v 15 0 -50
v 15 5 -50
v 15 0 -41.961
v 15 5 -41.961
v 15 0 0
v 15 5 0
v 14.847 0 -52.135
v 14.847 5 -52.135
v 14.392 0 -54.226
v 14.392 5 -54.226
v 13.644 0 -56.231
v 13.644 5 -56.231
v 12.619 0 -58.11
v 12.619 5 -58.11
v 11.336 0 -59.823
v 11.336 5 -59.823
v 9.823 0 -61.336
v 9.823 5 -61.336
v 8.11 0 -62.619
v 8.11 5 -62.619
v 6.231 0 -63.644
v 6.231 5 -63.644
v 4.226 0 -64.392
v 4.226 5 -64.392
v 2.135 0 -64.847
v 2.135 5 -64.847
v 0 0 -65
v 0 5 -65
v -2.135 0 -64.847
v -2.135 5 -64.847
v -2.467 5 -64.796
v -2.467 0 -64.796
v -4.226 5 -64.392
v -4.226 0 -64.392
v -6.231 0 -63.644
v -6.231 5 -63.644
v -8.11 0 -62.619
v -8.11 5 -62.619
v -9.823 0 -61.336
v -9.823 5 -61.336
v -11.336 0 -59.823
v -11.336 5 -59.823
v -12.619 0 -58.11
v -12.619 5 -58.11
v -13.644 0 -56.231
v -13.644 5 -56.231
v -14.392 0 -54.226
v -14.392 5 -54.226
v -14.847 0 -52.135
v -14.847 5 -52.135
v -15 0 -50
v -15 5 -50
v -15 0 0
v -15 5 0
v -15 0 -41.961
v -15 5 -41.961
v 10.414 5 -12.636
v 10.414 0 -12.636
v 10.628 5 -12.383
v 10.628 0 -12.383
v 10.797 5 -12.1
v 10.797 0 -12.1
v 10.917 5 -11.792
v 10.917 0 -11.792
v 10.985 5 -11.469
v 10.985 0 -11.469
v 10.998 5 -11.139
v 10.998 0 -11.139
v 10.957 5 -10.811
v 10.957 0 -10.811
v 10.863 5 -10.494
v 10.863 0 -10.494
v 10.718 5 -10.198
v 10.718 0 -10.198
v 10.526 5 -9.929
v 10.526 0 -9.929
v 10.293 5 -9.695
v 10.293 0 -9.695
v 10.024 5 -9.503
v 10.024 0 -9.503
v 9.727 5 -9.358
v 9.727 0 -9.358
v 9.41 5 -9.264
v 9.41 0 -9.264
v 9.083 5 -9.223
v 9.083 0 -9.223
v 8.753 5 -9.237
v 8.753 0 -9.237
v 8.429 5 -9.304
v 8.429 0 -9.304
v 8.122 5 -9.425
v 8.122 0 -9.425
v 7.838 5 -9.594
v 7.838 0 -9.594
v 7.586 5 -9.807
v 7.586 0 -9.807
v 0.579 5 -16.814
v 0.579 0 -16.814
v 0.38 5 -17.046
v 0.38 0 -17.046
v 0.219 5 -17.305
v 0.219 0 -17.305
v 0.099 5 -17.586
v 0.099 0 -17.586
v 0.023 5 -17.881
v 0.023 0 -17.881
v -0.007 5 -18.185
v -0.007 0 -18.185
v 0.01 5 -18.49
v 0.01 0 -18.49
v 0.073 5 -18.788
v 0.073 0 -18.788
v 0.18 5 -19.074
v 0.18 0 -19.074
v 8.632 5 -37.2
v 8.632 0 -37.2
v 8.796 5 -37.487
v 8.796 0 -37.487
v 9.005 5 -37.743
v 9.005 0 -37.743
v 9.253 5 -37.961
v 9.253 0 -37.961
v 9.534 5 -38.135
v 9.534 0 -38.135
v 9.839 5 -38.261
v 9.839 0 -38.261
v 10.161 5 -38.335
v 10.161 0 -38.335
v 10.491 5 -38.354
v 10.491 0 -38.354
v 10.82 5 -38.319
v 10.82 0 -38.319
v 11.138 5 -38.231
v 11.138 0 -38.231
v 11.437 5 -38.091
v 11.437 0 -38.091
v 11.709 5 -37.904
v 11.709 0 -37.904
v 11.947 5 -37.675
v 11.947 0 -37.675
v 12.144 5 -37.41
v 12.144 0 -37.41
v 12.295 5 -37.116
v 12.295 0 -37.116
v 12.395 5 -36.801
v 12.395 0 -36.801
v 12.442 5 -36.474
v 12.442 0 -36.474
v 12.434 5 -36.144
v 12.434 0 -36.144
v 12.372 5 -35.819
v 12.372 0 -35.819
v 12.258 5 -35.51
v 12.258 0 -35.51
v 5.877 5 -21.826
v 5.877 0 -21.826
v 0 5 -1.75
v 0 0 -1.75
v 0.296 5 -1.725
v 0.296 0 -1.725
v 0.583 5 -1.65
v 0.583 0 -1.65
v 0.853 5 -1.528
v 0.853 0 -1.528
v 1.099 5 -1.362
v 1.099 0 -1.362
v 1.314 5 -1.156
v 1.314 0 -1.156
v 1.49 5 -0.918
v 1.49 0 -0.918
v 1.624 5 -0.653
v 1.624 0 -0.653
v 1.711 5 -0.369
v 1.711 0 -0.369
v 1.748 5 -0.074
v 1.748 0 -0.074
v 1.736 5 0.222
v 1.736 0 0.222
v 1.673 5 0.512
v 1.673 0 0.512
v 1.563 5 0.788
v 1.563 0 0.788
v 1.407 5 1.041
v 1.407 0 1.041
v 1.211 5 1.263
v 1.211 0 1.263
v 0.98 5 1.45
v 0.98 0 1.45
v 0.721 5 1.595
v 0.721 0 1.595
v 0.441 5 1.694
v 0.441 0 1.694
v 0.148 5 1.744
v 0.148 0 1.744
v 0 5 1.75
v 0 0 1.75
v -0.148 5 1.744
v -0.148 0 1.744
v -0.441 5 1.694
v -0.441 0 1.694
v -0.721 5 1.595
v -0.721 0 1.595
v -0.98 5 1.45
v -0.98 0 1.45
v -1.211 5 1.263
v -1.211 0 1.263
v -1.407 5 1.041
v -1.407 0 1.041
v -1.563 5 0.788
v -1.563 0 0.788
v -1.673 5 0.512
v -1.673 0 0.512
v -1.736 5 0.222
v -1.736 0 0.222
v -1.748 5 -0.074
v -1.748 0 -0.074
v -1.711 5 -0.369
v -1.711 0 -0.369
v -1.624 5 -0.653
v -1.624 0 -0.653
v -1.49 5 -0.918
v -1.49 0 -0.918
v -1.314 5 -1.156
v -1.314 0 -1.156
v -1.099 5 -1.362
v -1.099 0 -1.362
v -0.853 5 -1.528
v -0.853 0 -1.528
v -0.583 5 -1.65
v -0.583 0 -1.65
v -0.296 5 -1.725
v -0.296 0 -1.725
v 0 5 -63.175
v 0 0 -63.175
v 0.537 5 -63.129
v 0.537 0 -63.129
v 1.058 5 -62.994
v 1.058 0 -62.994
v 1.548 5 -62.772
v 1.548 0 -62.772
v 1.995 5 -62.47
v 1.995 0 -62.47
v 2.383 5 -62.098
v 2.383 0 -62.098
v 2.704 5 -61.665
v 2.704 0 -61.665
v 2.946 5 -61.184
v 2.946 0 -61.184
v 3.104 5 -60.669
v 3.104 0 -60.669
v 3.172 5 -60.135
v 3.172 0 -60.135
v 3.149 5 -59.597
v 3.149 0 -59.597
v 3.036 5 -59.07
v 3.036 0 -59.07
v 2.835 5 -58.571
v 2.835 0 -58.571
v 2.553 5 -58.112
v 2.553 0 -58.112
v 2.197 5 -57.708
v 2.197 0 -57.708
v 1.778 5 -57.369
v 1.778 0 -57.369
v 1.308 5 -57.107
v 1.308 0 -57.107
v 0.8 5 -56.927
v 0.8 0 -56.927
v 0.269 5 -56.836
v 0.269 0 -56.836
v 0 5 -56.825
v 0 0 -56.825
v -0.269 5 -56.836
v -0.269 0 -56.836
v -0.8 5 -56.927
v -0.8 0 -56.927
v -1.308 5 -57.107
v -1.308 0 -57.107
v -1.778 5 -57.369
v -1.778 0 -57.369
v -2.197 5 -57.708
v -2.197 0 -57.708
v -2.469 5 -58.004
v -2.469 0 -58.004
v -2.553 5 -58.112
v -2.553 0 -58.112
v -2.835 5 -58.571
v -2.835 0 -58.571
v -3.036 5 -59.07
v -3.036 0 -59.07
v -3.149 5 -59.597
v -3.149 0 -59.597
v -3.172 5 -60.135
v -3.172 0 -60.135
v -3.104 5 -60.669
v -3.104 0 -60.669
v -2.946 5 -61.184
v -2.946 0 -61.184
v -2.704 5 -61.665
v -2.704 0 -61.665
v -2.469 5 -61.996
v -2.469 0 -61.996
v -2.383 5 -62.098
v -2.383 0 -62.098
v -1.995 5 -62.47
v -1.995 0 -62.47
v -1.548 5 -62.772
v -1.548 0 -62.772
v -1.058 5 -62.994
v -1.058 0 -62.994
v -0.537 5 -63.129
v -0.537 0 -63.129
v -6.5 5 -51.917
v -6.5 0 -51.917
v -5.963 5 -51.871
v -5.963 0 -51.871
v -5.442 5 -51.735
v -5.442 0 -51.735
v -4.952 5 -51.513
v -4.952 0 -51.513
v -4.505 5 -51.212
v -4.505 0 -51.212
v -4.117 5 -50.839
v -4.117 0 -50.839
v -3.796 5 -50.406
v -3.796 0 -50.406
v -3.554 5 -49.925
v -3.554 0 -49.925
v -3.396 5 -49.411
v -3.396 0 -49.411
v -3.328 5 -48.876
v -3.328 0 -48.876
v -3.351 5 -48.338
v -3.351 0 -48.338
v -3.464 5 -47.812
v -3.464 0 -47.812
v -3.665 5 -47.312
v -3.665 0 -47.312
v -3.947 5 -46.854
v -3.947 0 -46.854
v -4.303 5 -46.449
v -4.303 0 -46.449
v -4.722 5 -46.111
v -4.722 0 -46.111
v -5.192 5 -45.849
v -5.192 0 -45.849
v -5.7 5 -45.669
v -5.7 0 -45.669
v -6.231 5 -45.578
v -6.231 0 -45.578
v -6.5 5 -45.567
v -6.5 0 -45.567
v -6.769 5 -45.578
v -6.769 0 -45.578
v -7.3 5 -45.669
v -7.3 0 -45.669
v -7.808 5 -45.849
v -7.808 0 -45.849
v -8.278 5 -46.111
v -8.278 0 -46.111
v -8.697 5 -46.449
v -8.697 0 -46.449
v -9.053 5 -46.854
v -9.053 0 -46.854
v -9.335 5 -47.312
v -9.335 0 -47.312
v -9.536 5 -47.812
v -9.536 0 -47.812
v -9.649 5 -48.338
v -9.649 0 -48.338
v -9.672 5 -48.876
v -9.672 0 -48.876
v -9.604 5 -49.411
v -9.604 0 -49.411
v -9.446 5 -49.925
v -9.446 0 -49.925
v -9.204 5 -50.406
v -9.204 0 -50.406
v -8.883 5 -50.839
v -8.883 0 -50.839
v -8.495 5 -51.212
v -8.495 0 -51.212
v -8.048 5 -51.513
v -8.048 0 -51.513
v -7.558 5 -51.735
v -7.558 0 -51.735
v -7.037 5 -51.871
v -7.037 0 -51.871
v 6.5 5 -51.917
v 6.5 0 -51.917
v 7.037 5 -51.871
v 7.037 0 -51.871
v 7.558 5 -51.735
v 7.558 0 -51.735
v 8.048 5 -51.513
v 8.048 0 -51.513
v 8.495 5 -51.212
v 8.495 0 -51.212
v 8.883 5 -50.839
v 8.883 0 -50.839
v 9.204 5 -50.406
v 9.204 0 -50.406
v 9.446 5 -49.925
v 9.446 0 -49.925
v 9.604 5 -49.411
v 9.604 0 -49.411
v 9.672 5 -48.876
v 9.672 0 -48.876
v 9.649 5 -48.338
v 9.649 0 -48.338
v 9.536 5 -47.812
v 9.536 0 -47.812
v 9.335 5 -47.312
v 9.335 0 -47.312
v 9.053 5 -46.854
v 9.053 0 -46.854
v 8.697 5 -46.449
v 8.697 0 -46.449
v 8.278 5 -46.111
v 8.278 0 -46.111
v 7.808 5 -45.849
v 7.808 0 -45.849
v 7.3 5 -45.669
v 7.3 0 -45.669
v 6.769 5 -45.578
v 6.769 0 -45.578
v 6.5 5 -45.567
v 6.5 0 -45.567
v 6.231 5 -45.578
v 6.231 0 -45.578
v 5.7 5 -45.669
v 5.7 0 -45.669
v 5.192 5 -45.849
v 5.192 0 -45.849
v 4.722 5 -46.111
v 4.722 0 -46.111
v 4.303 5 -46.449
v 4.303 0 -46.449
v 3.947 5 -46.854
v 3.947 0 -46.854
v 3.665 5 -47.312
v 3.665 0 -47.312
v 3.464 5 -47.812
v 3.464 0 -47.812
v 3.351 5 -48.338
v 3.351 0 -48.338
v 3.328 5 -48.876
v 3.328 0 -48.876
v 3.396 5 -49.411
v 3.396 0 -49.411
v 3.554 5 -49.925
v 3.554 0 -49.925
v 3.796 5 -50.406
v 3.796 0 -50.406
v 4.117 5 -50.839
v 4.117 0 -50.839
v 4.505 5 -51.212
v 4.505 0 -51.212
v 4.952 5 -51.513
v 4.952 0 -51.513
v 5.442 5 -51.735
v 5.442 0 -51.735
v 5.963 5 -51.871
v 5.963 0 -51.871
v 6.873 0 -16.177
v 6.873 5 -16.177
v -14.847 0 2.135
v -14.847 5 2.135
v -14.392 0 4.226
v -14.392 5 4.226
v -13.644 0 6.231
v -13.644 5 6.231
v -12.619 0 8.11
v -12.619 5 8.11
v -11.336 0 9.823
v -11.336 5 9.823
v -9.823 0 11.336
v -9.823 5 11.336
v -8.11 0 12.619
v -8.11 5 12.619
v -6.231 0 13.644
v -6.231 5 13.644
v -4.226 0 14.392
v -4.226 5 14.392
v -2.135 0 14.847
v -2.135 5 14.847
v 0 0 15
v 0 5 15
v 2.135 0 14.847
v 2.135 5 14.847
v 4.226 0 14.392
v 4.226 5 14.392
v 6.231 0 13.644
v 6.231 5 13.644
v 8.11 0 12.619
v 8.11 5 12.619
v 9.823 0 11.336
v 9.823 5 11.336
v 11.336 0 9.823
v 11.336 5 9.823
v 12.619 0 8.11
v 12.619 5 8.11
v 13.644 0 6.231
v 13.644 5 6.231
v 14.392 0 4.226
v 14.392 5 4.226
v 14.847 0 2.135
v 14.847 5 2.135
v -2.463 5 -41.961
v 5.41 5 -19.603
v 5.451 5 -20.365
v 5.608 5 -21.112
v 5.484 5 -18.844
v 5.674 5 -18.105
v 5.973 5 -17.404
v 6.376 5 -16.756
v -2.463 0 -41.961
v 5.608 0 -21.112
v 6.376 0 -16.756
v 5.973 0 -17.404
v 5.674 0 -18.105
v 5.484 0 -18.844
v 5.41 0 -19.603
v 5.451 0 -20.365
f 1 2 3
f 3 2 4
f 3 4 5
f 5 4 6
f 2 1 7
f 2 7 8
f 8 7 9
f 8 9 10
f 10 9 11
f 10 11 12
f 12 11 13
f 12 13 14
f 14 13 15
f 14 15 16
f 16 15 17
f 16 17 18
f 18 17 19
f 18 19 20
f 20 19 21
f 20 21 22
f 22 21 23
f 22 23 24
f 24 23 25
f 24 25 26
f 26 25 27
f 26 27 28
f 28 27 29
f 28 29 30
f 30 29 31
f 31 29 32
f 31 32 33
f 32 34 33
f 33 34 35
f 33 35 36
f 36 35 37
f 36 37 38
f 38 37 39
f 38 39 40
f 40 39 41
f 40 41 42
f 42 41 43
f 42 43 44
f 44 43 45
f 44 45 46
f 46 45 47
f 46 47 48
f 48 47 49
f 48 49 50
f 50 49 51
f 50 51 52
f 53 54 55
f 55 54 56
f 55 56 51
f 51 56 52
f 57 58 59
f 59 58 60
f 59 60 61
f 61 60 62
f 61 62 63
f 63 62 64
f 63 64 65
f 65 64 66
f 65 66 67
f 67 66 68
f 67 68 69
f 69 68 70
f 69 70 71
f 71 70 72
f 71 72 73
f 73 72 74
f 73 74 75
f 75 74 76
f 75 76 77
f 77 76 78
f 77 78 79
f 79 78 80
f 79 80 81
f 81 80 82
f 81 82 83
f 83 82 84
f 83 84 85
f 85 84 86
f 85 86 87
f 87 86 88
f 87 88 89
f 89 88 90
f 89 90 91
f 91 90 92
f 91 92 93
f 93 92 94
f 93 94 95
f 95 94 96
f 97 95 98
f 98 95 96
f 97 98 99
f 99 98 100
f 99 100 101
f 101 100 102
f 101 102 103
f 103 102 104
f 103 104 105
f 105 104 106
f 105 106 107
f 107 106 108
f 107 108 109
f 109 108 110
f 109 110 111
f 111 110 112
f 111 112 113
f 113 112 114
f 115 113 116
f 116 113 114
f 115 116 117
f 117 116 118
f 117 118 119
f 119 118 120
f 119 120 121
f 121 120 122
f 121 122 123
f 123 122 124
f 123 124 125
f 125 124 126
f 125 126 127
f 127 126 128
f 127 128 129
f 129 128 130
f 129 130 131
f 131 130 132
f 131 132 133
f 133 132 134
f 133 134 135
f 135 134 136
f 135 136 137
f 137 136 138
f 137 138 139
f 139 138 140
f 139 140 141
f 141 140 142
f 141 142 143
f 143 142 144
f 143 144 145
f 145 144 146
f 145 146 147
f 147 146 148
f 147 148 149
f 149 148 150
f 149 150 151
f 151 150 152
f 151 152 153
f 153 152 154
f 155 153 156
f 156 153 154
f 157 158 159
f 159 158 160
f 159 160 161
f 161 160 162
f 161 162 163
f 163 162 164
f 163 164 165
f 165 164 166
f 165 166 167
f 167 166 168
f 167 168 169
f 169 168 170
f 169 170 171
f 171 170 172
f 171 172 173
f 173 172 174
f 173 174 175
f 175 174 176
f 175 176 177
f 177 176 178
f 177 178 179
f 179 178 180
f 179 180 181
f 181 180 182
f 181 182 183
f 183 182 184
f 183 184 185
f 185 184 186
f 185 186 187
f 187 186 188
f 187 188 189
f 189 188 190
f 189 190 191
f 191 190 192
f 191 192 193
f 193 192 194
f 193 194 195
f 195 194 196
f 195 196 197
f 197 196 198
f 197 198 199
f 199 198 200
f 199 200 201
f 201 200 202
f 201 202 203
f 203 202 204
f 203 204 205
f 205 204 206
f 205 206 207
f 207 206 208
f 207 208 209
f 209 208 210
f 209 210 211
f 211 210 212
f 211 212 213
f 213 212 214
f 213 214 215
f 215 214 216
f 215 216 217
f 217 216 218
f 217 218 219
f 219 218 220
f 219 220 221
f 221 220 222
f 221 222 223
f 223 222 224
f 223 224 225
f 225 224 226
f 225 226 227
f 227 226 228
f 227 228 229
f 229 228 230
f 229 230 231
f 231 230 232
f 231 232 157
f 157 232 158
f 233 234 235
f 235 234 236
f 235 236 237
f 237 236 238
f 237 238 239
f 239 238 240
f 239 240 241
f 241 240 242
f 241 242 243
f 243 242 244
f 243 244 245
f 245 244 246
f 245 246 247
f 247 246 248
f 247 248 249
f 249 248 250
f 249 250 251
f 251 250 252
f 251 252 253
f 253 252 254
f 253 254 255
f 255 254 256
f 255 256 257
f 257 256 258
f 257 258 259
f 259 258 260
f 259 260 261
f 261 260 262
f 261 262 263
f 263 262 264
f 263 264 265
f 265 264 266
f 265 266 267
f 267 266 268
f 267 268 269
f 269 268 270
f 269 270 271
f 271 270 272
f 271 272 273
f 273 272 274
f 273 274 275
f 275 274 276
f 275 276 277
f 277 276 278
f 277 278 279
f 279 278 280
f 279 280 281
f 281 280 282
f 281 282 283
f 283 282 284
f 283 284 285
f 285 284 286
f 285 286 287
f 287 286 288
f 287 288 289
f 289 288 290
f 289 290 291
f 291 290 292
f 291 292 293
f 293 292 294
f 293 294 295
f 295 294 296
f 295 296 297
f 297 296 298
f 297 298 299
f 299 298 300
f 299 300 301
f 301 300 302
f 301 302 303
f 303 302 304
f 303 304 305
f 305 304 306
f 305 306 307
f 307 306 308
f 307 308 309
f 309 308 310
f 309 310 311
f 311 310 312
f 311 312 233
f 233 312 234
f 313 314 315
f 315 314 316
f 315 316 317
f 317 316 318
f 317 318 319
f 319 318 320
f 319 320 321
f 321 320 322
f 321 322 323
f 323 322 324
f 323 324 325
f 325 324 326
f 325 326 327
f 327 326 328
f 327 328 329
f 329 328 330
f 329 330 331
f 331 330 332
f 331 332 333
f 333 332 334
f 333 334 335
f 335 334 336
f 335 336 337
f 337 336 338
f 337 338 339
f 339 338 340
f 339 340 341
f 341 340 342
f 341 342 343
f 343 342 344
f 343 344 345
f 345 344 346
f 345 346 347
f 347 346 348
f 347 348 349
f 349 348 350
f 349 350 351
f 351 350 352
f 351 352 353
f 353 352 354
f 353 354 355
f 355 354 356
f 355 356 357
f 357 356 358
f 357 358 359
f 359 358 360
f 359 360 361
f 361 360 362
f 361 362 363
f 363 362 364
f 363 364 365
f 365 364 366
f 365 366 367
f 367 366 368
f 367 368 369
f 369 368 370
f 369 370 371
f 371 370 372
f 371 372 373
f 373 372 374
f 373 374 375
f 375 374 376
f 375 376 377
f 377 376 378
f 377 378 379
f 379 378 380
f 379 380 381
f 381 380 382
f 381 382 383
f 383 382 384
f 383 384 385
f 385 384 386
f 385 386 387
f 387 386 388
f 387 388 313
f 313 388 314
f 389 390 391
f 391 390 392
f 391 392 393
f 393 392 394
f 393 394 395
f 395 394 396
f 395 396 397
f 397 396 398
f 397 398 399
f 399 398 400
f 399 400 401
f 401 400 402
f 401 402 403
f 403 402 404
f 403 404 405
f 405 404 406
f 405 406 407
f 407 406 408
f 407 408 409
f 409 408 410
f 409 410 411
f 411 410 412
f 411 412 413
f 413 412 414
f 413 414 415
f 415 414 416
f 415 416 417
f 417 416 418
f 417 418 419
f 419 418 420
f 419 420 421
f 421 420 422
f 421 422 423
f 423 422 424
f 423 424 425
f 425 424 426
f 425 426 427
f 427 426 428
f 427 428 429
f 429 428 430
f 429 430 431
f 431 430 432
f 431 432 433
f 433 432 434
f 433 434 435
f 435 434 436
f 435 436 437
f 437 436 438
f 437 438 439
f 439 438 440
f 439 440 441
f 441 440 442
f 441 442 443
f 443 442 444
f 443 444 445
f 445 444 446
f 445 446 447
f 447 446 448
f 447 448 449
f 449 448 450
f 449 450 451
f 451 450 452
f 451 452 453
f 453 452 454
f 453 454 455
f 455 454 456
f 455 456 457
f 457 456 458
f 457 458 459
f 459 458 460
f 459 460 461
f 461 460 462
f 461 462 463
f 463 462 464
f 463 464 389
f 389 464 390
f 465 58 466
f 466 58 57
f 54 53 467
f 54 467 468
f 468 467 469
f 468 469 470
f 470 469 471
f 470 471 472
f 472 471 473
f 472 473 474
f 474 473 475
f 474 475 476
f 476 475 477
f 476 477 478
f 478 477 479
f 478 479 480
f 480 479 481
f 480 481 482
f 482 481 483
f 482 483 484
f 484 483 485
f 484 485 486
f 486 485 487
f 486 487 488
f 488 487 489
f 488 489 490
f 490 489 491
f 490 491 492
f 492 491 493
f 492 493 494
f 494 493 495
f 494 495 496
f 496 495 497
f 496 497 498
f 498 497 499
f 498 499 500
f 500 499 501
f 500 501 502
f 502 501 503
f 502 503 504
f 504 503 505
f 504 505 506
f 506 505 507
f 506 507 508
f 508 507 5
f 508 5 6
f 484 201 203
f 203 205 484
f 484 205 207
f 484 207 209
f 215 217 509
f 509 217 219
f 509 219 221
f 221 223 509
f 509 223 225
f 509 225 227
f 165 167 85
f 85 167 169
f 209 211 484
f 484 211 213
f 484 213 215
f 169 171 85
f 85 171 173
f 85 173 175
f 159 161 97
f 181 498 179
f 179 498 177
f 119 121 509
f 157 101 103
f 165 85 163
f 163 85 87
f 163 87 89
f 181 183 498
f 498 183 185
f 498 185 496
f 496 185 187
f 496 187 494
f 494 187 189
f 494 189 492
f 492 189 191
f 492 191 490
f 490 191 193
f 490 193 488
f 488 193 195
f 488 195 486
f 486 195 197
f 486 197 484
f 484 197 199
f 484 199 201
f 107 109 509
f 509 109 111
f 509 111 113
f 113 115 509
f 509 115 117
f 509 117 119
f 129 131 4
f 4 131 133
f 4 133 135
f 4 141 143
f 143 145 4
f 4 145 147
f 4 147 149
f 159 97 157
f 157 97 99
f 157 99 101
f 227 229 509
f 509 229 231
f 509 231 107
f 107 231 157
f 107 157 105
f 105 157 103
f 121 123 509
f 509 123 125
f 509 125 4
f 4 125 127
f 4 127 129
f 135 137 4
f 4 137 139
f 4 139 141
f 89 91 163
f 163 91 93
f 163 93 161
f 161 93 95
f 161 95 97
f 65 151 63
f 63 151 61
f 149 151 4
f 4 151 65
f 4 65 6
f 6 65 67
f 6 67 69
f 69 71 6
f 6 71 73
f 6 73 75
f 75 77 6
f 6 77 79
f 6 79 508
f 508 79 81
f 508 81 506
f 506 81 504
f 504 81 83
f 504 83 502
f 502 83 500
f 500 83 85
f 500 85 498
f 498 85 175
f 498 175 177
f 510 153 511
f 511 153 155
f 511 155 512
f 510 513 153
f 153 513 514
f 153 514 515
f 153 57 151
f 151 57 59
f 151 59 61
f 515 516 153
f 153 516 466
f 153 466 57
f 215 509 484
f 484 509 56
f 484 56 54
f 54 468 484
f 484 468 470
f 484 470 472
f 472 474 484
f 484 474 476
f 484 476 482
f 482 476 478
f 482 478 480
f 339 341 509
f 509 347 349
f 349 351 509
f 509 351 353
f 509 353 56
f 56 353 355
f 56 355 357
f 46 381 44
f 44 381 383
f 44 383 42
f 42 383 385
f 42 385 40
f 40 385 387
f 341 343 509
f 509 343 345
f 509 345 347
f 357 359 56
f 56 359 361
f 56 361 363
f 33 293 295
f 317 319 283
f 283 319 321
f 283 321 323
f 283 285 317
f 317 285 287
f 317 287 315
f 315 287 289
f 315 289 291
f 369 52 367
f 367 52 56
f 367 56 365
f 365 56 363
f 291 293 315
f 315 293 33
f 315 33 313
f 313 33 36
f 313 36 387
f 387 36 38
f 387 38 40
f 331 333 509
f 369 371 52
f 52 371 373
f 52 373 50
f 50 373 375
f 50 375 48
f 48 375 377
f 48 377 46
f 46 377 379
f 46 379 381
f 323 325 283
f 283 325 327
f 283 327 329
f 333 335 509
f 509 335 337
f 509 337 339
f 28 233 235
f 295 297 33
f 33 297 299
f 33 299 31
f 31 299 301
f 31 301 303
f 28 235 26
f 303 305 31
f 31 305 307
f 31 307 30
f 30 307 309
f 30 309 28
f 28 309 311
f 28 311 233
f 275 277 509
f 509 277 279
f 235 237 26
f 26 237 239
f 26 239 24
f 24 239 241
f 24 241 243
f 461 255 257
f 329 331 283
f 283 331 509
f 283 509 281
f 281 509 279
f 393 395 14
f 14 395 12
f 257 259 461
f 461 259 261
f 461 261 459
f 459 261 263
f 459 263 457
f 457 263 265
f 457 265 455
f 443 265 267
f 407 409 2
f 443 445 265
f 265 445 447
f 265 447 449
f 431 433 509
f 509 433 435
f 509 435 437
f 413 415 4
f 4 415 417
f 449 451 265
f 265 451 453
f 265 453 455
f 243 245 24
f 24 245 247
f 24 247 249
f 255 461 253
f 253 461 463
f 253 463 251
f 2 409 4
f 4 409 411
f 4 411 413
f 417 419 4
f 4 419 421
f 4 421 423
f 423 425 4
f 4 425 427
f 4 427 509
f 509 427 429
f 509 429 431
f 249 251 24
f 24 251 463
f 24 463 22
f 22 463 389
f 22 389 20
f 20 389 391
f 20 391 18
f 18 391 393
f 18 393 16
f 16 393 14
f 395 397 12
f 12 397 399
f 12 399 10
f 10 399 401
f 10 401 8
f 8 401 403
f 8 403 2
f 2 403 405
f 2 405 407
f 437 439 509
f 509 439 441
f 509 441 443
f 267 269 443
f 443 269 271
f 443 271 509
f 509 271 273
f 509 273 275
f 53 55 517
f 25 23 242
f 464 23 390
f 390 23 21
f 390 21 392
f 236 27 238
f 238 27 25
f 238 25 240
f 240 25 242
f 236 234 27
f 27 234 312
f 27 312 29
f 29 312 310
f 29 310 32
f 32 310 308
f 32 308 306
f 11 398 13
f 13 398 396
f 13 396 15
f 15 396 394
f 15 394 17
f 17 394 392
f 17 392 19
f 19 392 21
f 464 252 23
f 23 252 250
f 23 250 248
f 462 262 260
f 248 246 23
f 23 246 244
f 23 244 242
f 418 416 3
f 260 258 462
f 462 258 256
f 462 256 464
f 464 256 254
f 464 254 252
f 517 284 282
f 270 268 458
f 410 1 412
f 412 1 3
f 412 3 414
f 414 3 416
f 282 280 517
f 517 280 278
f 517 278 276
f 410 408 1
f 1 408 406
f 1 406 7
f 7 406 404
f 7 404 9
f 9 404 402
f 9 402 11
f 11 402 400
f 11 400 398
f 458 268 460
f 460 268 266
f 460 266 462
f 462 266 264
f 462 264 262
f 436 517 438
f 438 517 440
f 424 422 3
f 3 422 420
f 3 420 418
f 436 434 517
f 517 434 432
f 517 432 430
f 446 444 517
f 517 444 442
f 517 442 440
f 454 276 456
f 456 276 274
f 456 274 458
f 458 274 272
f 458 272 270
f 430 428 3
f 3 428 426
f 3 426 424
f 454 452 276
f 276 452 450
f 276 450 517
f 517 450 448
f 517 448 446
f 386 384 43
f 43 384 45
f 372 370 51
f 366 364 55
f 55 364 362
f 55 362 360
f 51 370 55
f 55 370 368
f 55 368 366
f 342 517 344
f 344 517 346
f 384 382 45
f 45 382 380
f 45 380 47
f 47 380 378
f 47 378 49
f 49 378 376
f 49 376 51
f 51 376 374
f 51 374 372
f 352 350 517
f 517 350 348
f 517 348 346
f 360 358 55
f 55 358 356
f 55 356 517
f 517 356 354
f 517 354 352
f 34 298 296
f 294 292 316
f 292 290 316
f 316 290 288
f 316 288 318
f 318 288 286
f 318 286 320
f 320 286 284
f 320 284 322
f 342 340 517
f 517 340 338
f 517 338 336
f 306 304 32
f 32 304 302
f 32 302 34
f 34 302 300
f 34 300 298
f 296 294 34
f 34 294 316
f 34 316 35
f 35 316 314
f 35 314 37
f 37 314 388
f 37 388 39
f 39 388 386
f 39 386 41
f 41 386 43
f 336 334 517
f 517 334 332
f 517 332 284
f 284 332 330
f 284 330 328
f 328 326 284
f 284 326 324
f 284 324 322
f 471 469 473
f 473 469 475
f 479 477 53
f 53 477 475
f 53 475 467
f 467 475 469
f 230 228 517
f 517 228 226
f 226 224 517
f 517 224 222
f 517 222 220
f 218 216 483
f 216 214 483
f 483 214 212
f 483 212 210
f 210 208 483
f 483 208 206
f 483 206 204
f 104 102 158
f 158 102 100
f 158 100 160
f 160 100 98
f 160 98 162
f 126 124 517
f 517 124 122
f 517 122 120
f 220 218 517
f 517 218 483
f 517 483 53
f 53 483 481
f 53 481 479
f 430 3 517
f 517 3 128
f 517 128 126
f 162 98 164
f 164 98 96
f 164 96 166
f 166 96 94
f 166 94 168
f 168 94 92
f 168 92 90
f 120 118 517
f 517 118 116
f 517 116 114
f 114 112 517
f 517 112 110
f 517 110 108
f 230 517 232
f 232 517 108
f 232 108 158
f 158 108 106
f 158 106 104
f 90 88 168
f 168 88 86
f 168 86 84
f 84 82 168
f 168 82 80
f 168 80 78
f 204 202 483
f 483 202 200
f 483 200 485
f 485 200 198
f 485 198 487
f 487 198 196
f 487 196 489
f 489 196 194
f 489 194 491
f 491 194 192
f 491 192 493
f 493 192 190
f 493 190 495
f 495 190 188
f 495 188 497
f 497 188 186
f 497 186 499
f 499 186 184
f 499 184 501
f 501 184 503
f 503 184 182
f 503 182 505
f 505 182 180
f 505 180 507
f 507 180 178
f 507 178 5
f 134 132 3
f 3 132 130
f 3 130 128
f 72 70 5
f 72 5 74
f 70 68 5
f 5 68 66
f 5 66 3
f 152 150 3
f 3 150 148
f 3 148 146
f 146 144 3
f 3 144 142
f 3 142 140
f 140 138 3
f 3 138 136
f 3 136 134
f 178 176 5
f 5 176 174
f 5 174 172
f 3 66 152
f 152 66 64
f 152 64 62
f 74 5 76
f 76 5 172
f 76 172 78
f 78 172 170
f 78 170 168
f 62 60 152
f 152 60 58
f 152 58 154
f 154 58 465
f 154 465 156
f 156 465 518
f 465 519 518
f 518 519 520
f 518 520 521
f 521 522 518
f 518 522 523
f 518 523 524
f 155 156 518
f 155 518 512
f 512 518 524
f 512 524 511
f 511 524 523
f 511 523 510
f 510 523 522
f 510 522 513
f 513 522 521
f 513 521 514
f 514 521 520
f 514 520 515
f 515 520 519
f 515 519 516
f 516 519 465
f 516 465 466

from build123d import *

# Parameters (mm, degrees)
SKETCH1_R           = 3.175
SKETCH1_R_2         = 1.75
BOSS_EXTRUDE1_DEPTH = 5
FILLET1_R           = 5


with BuildPart() as part:
    # Sketch1 → Boss-Extrude1 (new body)
    with BuildSketch(Plane(origin=(0, 0, 0), x_dir=(1, 0, 0), z_dir=(0, 1, 0))):
        with BuildLine():
            Line((15, 0), (15, 50))
            ThreePointArc((15, 50), (0, 65), (-15, 50))
            Line((-15, 50), (-15, 0))
            ThreePointArc((-15, 0), (0, -15), (15, 0))
        make_face()
        with Locations((6.5, 48.741669751)):
            Circle(SKETCH1_R, mode=Mode.SUBTRACT)
        with Locations((-6.5, 48.741669751)):
            Circle(SKETCH1_R, mode=Mode.SUBTRACT)
        with Locations((0, 60)):
            Circle(SKETCH1_R, mode=Mode.SUBTRACT)
        Circle(SKETCH1_R_2, mode=Mode.SUBTRACT)
        with BuildLine():
            ThreePointArc((7.585786438, 9.807118725), (10.414213562, 9.807118725), (10.414213562, 12.63554585))
            Line((10.414213562, 12.63554585), (4.397206201, 18.652553211))
            Line((4.397206201, 18.652553211), (12.25773045, 35.509501863))
            ThreePointArc((12.25773045, 35.509501863), (11.2903514, 38.167353961), (8.632499302, 37.19997491))
            Line((8.632499302, 37.19997491), (0.180134067, 19.07381917))
            ThreePointArc((0.180134067, 19.07381917), (0.023134135, 17.881286291), (0.578536079, 16.814369084))
            Line((0.578536079, 16.814369084), (7.585786438, 9.807118725))
        make_face(mode=Mode.SUBTRACT)
    extrude(amount=BOSS_EXTRUDE1_DEPTH)

    # Fillet1
    fillet1_edges = [part.edges().sort_by_distance(p)[0] for p in [
        (4.397206201, 2.5, -18.652553211),
    ]]
    fillet(fillet1_edges, radius=FILLET1_R)


solid = part.part
